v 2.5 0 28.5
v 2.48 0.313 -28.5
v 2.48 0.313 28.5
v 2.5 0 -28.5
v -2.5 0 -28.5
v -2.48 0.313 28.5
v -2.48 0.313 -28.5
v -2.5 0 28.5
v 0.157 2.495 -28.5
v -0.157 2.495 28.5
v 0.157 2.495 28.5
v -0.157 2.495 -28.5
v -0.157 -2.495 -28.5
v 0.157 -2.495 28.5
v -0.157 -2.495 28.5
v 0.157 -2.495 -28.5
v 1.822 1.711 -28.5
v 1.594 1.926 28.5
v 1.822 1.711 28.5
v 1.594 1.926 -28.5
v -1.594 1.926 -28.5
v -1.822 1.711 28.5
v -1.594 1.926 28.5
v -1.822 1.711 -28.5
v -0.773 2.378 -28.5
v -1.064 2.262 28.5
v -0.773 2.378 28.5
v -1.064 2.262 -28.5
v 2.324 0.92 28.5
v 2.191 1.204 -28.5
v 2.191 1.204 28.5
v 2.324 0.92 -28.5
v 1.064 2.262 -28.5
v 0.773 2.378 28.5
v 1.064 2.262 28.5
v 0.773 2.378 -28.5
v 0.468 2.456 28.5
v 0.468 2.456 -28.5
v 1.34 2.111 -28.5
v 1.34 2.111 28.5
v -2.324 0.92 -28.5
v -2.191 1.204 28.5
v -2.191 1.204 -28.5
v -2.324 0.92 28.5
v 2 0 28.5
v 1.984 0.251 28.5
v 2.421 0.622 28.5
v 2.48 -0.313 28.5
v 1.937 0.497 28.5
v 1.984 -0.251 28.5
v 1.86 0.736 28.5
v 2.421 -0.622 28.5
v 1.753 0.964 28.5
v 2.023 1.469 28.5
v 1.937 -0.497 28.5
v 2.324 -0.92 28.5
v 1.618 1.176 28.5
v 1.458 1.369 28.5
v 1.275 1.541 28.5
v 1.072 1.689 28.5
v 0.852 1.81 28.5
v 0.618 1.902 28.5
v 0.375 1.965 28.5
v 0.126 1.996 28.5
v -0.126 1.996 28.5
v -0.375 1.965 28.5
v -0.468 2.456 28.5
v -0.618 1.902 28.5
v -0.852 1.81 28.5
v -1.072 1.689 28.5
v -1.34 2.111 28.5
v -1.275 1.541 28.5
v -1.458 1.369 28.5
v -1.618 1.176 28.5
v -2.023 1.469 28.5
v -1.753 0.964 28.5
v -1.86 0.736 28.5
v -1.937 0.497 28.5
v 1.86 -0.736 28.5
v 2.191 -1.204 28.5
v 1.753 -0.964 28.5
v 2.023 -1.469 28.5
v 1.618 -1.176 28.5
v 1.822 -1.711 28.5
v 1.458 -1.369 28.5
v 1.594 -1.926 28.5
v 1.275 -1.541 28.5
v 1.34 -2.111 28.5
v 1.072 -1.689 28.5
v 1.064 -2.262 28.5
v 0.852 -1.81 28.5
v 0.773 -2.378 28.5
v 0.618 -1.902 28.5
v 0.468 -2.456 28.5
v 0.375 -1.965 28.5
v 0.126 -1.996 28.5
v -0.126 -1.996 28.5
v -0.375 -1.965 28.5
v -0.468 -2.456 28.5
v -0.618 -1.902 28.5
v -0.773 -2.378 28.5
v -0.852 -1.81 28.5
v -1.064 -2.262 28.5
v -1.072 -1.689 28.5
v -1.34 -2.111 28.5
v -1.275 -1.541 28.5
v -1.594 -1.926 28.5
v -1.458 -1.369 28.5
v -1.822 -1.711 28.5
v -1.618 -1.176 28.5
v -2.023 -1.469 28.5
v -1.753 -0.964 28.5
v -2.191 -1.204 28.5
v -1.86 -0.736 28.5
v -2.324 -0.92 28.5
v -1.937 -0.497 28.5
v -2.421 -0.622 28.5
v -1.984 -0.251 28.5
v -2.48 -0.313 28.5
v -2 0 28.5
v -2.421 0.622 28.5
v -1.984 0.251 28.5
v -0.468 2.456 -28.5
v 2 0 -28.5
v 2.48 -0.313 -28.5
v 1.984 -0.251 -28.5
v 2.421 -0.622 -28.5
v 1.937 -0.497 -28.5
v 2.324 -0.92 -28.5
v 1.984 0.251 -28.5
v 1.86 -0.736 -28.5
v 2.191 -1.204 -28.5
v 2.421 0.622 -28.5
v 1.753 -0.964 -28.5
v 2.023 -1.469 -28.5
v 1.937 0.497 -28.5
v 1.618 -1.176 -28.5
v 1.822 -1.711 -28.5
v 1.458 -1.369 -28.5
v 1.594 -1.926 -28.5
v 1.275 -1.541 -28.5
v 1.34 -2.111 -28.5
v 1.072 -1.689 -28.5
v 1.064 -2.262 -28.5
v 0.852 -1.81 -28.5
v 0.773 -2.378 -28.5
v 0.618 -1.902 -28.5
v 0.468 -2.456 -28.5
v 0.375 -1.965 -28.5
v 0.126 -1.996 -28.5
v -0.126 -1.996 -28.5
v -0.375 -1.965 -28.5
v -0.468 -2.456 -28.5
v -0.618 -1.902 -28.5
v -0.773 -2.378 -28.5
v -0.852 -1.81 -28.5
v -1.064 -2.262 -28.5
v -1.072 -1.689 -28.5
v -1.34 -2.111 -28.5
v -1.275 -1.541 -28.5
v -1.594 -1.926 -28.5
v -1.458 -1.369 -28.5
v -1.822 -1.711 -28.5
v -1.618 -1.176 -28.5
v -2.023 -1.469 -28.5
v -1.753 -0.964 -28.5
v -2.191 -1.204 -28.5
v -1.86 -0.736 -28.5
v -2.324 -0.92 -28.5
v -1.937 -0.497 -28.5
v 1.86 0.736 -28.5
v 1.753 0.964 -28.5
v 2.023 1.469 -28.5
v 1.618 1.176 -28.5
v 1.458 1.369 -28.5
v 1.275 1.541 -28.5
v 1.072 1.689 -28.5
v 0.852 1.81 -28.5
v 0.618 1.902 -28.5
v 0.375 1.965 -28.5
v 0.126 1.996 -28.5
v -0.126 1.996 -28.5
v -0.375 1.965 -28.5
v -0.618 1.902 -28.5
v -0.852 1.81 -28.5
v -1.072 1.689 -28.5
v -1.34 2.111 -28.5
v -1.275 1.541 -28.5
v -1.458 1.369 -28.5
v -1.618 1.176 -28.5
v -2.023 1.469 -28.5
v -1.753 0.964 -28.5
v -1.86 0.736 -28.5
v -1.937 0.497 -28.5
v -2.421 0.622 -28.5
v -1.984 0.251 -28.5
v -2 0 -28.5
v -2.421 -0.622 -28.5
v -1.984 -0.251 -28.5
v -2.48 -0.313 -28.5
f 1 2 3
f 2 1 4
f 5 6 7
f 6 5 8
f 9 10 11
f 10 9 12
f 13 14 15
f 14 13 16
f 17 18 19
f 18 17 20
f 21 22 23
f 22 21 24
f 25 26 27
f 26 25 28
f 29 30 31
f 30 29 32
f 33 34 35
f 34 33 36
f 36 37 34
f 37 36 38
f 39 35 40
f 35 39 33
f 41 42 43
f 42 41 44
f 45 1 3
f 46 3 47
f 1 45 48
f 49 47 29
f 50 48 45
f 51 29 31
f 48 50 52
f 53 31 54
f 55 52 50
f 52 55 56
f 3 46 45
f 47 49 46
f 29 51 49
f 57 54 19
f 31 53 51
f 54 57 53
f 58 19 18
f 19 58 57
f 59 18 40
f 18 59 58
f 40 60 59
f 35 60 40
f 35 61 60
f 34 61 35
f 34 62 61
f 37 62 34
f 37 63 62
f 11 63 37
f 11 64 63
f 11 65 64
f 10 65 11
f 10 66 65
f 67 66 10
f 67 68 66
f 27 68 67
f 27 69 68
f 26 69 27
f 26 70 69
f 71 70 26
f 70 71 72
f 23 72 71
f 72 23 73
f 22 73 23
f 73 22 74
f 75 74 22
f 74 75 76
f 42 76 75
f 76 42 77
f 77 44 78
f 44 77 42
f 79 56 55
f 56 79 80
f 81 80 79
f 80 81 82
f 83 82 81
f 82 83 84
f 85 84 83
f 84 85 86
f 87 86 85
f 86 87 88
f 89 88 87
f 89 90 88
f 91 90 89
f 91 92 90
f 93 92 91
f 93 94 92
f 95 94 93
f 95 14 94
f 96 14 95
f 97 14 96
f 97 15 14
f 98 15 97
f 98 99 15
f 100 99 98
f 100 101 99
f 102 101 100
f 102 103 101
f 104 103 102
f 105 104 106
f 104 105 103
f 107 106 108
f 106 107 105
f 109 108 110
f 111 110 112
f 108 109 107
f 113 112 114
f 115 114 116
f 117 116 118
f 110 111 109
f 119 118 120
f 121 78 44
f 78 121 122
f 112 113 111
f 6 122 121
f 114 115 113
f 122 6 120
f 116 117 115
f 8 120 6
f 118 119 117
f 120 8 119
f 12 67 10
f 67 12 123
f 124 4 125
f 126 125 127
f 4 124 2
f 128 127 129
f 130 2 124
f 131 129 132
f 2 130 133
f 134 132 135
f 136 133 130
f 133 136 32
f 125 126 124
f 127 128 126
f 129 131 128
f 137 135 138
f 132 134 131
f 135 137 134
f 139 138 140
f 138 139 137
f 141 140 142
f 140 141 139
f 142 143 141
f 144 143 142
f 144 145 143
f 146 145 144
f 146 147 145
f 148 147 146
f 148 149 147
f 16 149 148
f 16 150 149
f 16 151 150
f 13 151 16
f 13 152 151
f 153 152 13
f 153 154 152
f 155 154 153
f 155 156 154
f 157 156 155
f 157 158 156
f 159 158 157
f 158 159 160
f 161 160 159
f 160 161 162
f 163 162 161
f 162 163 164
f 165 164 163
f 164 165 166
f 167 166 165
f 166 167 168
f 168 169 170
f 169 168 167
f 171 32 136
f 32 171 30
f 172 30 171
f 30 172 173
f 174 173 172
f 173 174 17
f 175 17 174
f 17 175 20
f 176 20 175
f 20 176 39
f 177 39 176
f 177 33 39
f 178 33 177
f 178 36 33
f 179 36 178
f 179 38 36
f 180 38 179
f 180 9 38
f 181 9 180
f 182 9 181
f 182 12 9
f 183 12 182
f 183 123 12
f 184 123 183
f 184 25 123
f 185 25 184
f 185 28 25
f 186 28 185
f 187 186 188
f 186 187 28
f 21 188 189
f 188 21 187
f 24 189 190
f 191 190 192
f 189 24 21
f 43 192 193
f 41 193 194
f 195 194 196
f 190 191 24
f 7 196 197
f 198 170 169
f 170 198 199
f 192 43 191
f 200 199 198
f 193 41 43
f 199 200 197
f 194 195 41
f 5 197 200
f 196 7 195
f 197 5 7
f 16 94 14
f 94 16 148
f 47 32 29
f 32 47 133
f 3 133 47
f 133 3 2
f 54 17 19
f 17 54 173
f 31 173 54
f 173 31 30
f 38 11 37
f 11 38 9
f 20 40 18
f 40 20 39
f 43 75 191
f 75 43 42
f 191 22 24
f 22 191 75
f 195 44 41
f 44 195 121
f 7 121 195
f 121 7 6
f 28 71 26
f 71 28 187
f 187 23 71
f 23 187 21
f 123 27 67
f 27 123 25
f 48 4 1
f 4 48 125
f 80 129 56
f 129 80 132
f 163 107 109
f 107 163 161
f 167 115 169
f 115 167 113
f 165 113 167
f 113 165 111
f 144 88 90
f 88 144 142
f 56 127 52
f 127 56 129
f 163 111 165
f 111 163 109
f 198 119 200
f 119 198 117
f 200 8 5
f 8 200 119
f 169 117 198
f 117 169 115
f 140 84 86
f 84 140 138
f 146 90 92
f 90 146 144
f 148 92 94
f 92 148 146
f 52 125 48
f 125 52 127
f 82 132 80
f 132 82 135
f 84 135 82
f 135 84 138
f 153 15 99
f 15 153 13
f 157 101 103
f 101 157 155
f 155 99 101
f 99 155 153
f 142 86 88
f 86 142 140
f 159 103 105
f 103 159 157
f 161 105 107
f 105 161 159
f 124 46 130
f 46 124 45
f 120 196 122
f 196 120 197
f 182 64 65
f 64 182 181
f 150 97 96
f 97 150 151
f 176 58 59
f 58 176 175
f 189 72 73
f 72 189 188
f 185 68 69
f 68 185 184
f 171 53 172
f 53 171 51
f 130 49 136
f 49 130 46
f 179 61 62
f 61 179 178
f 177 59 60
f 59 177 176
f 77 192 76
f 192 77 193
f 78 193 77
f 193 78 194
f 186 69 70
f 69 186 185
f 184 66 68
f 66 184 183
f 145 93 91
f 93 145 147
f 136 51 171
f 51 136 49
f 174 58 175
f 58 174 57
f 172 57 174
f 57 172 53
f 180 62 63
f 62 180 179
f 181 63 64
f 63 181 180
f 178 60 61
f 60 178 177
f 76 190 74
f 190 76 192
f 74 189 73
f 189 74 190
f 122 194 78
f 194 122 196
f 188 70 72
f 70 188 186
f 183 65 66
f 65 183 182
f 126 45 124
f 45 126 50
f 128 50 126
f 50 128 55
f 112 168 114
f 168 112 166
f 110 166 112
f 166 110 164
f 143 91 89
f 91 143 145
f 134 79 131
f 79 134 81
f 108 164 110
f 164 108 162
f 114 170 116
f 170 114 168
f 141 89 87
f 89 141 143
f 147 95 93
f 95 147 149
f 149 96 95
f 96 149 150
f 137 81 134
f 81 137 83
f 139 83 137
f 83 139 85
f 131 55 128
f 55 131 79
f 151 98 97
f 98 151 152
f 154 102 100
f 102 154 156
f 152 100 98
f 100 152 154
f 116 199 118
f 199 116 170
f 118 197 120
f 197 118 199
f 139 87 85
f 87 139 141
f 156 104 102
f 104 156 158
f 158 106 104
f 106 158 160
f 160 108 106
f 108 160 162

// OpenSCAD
$fn = 50;


difference() {
	union() {
		translate(v = [0, 0, -28.5000000000]) {
			cylinder(h = 57, r = 2.5000000000);
		}
	}
	union() {
		translate(v = [0, 0, -100.0000000000]) {
			cylinder(h = 200, r = 2);
		}
	}
}
